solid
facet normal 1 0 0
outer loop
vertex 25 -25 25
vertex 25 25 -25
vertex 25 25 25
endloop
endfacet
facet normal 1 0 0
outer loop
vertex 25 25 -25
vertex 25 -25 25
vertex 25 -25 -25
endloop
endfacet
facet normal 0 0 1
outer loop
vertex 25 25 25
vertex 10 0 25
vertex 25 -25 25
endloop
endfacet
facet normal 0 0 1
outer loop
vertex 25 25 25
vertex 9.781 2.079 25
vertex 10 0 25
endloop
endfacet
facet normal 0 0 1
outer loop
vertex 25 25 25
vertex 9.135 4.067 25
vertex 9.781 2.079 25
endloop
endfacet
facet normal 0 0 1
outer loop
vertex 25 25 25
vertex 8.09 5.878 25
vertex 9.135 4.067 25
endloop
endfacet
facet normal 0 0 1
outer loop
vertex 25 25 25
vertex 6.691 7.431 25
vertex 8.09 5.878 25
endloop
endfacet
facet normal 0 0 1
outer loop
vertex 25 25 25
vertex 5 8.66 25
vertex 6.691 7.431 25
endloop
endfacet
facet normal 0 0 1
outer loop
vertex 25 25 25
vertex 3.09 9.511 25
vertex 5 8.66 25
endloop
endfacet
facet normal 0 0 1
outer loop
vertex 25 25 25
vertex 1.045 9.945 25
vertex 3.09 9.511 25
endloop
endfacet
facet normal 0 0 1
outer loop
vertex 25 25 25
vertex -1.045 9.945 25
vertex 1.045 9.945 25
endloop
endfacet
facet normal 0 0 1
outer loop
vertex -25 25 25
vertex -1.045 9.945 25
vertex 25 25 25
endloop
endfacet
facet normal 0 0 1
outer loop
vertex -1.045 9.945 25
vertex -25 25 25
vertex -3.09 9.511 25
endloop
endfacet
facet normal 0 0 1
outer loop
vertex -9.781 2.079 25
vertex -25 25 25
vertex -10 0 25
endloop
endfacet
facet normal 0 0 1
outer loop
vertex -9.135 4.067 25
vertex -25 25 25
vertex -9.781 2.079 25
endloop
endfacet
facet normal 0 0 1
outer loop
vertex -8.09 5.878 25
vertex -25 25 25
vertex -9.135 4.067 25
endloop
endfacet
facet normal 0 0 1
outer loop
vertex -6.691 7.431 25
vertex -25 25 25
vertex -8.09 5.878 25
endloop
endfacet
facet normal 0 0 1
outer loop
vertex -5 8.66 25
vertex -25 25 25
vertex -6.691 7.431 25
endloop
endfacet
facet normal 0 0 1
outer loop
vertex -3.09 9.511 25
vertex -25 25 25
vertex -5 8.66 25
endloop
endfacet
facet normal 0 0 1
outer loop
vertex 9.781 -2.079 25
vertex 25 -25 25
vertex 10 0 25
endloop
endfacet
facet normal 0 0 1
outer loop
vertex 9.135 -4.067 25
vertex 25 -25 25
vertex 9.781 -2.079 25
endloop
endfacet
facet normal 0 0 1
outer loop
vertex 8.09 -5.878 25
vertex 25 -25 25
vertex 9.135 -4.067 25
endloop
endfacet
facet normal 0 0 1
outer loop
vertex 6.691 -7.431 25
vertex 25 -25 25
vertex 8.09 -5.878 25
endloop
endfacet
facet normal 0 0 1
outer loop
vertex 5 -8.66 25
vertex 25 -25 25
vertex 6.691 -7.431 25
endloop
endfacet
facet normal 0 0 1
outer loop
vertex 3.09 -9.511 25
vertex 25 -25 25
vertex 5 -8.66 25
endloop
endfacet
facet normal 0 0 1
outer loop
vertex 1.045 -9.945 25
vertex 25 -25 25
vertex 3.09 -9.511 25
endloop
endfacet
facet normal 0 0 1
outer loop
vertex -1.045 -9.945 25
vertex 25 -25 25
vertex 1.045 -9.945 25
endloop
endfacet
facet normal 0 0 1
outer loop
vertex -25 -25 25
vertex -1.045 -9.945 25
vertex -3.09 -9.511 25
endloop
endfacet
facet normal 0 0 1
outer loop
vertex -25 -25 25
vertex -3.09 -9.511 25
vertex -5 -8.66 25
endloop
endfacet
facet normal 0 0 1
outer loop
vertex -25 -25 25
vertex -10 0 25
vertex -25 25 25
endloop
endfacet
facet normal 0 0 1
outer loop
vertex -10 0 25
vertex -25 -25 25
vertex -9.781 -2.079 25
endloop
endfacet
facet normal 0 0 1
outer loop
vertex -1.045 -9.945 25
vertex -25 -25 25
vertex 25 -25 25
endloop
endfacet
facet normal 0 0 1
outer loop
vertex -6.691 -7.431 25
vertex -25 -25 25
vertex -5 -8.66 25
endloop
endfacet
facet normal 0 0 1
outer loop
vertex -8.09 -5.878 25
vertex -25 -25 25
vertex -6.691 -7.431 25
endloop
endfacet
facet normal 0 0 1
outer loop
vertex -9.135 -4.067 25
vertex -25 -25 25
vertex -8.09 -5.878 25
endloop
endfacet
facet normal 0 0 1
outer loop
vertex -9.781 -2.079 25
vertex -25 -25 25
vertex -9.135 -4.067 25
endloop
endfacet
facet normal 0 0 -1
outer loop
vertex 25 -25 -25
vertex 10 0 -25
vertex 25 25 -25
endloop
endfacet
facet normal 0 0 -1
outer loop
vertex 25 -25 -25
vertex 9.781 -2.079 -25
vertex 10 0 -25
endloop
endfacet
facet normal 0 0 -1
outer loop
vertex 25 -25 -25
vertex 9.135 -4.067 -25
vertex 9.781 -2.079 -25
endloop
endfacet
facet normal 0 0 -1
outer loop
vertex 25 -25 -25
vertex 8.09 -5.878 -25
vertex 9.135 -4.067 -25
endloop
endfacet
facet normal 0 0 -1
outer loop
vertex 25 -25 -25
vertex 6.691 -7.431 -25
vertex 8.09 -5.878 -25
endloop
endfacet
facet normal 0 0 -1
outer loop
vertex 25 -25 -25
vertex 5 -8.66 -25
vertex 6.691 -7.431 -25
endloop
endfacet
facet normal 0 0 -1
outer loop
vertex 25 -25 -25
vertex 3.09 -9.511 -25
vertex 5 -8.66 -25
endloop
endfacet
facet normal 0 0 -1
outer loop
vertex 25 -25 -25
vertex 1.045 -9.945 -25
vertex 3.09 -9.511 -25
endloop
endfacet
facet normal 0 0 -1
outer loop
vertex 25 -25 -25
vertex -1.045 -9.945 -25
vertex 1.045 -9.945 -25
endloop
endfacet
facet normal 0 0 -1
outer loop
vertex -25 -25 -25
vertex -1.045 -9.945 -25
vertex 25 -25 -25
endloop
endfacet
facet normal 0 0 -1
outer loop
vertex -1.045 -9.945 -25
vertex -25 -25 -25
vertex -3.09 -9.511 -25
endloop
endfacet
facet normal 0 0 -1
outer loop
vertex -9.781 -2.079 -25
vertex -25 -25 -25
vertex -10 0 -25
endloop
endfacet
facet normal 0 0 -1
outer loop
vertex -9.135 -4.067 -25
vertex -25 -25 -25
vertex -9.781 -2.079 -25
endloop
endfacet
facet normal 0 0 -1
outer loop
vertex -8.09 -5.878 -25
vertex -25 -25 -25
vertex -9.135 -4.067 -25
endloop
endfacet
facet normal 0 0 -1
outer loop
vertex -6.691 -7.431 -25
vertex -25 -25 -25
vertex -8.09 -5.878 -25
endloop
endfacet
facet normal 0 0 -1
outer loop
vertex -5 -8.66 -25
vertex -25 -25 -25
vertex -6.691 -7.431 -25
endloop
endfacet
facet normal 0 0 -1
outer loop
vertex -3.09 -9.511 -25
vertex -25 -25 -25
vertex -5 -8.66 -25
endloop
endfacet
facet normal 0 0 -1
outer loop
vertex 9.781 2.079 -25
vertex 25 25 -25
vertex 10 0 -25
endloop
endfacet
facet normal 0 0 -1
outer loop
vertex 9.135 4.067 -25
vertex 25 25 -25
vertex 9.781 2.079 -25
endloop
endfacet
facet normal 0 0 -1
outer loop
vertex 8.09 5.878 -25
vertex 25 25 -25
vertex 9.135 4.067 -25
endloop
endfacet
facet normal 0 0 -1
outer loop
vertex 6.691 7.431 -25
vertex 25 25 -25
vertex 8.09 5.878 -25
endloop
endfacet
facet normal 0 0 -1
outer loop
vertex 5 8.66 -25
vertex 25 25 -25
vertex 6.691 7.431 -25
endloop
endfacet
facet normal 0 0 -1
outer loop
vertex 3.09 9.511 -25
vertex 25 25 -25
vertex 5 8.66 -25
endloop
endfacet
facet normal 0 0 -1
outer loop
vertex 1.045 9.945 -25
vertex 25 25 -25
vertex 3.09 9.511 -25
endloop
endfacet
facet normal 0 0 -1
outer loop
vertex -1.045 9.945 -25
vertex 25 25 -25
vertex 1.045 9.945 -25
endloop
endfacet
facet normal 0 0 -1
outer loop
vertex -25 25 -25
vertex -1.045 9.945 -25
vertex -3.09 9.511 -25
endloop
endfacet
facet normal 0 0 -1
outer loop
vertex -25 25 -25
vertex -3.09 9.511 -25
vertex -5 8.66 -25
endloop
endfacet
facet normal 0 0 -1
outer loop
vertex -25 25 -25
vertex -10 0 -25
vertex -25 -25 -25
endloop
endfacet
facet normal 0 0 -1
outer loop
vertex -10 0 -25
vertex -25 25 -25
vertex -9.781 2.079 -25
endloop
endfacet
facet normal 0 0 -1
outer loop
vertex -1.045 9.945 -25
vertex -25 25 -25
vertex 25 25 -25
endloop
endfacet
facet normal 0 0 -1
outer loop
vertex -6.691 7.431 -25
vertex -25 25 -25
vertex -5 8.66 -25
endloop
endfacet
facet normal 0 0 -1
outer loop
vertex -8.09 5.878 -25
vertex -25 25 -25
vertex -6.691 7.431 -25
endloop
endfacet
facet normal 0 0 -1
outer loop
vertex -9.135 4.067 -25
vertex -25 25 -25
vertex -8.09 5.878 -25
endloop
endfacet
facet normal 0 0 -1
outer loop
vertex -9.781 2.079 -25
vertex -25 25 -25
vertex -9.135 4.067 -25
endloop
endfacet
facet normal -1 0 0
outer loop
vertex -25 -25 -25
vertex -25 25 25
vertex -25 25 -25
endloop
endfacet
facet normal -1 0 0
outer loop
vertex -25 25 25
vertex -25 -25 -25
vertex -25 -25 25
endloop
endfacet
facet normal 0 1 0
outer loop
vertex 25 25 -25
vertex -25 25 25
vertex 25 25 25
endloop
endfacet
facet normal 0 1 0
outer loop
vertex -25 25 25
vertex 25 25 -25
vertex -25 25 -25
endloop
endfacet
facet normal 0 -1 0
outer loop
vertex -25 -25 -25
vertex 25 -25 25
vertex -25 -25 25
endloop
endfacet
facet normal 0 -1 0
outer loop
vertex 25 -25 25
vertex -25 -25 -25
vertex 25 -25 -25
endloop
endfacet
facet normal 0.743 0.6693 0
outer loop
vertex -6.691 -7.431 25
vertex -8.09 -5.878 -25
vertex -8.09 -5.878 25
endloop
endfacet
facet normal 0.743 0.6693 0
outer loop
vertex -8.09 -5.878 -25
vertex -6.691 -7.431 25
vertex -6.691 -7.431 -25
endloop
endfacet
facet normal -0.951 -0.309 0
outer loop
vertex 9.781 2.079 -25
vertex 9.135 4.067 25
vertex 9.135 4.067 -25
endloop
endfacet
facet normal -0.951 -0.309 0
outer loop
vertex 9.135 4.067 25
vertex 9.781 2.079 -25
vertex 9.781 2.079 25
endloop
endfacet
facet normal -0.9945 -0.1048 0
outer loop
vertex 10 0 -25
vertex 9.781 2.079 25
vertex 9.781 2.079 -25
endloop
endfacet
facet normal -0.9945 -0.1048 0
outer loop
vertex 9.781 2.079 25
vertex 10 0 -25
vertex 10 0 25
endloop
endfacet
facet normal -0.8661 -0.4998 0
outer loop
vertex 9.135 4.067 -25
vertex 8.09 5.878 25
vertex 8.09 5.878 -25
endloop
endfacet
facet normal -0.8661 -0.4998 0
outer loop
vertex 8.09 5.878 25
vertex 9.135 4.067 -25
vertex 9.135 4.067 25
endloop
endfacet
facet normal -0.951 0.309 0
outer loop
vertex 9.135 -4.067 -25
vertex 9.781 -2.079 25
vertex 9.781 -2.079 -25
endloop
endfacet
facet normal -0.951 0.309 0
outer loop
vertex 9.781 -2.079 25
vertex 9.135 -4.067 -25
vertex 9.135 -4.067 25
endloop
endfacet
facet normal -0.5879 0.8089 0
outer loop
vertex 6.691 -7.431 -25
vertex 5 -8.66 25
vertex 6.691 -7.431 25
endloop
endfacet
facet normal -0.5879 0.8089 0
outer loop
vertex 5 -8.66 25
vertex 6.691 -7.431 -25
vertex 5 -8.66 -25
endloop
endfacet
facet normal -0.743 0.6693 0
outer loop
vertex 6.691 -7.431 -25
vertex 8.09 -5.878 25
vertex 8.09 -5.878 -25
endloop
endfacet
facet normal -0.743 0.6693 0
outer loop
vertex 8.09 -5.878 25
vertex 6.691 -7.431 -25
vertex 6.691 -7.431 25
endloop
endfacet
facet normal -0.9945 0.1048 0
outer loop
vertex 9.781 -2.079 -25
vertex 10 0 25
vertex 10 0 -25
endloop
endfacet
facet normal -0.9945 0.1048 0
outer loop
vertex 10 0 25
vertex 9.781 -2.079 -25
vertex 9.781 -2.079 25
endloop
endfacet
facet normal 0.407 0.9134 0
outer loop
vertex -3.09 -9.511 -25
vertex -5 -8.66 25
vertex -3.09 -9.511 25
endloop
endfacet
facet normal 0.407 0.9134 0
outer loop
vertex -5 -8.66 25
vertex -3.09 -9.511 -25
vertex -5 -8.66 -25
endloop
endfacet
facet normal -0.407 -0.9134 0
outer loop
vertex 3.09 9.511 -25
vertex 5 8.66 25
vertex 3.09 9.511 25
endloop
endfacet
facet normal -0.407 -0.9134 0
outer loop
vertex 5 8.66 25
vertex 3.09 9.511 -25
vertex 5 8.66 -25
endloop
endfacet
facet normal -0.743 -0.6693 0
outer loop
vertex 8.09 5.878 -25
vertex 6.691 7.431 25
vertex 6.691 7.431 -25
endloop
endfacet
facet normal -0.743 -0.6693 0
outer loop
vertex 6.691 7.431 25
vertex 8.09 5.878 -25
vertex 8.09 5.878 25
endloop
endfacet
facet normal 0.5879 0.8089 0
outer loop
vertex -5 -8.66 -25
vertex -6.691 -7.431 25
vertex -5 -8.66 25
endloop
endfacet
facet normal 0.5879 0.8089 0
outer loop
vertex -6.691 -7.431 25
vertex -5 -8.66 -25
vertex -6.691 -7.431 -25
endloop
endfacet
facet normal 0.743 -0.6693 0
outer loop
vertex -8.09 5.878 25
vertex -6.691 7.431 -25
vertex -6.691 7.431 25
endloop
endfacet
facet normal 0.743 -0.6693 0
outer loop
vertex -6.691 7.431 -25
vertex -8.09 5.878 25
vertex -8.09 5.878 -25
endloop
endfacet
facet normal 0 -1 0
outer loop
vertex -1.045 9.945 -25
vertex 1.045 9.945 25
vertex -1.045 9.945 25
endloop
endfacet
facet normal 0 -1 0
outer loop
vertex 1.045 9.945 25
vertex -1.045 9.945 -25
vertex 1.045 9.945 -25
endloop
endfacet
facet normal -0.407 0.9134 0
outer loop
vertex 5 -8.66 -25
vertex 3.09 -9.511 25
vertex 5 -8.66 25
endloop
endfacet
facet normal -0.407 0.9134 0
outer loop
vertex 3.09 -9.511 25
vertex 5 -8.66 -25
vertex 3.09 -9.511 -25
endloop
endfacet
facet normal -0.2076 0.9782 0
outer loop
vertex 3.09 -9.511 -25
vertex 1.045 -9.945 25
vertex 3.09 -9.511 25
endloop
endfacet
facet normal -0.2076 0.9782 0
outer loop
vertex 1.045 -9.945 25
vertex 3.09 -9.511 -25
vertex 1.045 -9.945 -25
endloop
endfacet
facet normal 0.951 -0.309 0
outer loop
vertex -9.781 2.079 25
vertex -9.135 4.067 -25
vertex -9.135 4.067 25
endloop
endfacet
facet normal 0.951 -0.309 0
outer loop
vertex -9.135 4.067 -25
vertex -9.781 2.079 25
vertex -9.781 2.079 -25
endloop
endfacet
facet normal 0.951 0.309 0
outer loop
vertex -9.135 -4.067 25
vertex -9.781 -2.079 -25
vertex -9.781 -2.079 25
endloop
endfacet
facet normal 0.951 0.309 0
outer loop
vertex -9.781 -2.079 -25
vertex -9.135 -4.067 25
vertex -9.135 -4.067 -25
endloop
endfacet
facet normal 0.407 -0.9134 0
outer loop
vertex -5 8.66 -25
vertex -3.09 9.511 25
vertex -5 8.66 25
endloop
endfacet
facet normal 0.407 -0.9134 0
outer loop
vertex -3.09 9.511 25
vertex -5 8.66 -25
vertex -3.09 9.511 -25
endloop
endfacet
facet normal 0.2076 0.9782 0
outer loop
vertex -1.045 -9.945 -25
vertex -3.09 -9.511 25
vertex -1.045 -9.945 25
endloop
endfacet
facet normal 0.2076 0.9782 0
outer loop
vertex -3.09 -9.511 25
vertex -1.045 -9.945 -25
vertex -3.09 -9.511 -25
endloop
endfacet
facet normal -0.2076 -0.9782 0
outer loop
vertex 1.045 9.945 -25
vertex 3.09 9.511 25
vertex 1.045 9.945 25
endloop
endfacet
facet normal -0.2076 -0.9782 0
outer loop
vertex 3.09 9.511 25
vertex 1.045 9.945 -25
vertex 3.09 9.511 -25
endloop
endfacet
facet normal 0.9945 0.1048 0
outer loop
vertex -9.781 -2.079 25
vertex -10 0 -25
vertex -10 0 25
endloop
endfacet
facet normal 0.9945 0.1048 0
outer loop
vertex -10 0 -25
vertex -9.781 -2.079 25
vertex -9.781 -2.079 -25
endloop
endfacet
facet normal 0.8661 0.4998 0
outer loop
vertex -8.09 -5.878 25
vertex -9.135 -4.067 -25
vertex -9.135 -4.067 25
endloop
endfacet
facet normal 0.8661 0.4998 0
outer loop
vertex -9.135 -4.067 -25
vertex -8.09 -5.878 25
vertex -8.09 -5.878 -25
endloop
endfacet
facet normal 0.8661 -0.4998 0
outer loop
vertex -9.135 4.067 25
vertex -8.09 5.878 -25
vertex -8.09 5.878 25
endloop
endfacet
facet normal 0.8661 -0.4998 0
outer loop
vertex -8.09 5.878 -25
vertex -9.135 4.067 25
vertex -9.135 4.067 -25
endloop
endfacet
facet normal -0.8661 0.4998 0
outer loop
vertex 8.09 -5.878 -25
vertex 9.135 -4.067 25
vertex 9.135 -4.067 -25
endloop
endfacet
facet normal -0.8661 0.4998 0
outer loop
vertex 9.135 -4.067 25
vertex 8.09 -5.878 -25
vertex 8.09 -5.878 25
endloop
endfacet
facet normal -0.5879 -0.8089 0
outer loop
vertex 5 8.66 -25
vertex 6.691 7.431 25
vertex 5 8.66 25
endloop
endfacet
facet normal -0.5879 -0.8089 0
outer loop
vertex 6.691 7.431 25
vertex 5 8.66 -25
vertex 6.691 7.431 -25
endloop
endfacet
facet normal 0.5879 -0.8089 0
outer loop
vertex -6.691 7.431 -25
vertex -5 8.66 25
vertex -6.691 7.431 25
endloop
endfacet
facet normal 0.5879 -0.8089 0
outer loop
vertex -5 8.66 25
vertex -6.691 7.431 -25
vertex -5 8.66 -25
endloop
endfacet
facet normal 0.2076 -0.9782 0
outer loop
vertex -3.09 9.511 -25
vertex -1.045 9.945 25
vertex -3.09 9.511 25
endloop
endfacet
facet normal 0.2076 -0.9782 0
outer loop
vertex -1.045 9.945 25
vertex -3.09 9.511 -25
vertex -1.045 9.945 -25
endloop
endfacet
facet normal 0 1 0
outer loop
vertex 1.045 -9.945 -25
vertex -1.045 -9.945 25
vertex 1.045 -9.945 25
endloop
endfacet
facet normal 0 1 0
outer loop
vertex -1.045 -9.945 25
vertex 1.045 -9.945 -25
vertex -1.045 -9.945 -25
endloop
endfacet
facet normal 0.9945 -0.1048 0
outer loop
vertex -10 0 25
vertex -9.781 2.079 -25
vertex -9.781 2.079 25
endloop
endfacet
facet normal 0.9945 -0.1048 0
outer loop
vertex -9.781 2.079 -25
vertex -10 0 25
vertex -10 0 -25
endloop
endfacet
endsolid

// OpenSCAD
// Parameters
cube_size = 50; // Size of the cube (length of each side)
hole_diameter = 20; // Diameter of the cylindrical hole

// Main module
module cube_block() {
    // Create the cube
    difference() {
        cube([cube_size, cube_size, cube_size], center=true); // Centered cube
        // Create the cylindrical hole
        translate([0, 0, 0]) // Ensure the cylinder is perfectly centered
        cylinder(h=cube_size, d=hole_diameter, center=true); // Centered cylinder
    }
}

// Render the cube block
cube_block();
